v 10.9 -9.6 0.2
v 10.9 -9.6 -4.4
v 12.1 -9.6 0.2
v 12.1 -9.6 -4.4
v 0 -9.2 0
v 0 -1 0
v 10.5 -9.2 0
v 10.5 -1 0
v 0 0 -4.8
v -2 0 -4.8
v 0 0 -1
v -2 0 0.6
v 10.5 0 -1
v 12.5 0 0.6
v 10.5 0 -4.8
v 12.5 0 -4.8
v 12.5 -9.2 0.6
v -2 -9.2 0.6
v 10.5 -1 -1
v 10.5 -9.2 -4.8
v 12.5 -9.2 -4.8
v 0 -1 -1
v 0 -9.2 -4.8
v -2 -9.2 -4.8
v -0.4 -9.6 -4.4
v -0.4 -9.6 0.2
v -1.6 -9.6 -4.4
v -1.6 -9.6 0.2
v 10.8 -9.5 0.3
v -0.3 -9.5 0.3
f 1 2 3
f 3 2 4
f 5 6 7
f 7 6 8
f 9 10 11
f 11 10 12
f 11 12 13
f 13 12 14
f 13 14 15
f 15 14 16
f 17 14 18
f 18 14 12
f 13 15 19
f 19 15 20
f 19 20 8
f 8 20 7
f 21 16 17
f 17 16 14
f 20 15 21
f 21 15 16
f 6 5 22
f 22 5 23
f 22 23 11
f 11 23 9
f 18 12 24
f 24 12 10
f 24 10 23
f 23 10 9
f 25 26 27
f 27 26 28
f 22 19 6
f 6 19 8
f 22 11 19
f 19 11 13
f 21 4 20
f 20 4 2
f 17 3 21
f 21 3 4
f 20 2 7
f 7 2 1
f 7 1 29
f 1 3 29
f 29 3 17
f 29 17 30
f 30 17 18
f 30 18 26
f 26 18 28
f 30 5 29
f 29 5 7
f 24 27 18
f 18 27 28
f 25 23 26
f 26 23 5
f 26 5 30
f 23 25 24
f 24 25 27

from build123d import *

# Parameters (mm, degrees)
SKETCH_1_W      = 10.5
SKETCH_1_H      = 8.6
EXTRUDE_1_DEPTH = 0.6
SKETCH_2_W      = 2
SKETCH_2_H      = 8.6
EXTRUDE_2_DEPTH = 5.4
EXTRUDE_3_DEPTH = 1
SKETCH_4_W      = 10.5
SKETCH_4_H      = 1
EXTRUDE_4_DEPTH = 1
CHAMFER_1_SIZE  = 0.4


with BuildPart() as part:
    # Эскиз1 → Бобышка-Вытянуть1 (new body)
    with BuildSketch(Plane.XY):
        with Locations((5.25, -4.3)):
            Rectangle(SKETCH_1_W, SKETCH_1_H)
    extrude(amount=EXTRUDE_1_DEPTH)

    # Эскиз2 → Бобышка-Вытянуть2 (add)
    with BuildSketch(Plane.XY.offset(0.6)):
        with Locations((-1, -4.3)):
            Rectangle(SKETCH_2_W, SKETCH_2_H)
        with Locations((11.5, -4.3)):
            Rectangle(SKETCH_2_W, SKETCH_2_H)
    extrude(amount=-EXTRUDE_2_DEPTH)

    # Эскиз3 → Бобышка-Вытянуть3 (add)
    with BuildSketch(Plane.XZ.offset(8.6)):
        Polygon((10.5, 0), (10.5, -4.8), (12.5, -4.8), (12.5, 0.6), (-2, 0.6), (-2, -4.8), (0, -4.8), (0, 0), align=None)
    extrude(amount=EXTRUDE_3_DEPTH)

    # Эскиз4 → Бобышка-Вытянуть4 (add)
    with BuildSketch(Plane(origin=(0, 0, 0), x_dir=(-1, 0, 0), z_dir=(0, 0, -1))):
        with Locations((-5.25, -0.5)):
            Rectangle(SKETCH_4_W, SKETCH_4_H)
    extrude(amount=EXTRUDE_4_DEPTH)

    # Фаска1
    # the kernel refuses this chamfer: 0.4 mm, written as the material it takes off along each edge
    with BuildSketch(Plane(origin=(0, -9.6, -5.828673195), x_dir=(0.02749587661058617, 0.9996219169112966, 0), z_dir=(0, 0, 1)), Plane(origin=(10.5, -9.6, 0), x_dir=(-0.027495876610587302, 0.9996219169112966, 0), z_dir=(0, 0, -1))) as chamfer_1_piece_1:
        Polygon((CHAMFER_1_SIZE * 0.999621916911, CHAMFER_1_SIZE * 0.0274958766106), (-CHAMFER_1_SIZE * 0.0274958766106, CHAMFER_1_SIZE * 0.999621916911), (0, 0), align=None)
    extrude(amount=5.828673195, mode=Mode.SUBTRACT)
    with BuildSketch(Plane(origin=(0, -9.6, 0), x_dir=(0, 0.9996219169112968, -0.027495876610582035), z_dir=(1, 0, 0))) as chamfer_1_piece_2:
        Polygon((CHAMFER_1_SIZE * 0.999621916911, CHAMFER_1_SIZE * 0.0274958766106), (-CHAMFER_1_SIZE * 0.0274958766106, CHAMFER_1_SIZE * 0.999621916911), (0, 0), align=None)
    extrude(amount=10.5, mode=Mode.SUBTRACT)
    with BuildSketch(Plane(origin=(9.471326805, -9.6, -4.8), x_dir=(0, 0.9996219169112966, -0.027495876610587302), z_dir=(1, 0, 0)), Plane(origin=(-3.028673195, -9.6, -4.8), x_dir=(0, 0.9996219169112966, -0.027495876610587302), z_dir=(1, 0, 0))) as chamfer_1_piece_3:
        Polygon((CHAMFER_1_SIZE * 0.999621916911, CHAMFER_1_SIZE * 0.0274958766106), (-CHAMFER_1_SIZE * 0.0274958766106, CHAMFER_1_SIZE * 0.999621916911), (0, 0), align=None)
    extrude(amount=4.05734639, mode=Mode.SUBTRACT)
    with BuildSketch(Plane(origin=(12.5, -9.6, -5.828673195), x_dir=(0.027495876610587302, 0.9996219169112966, 0), z_dir=(0, 0, 1)), Plane(origin=(-2, -9.6, 1.628673195), x_dir=(-0.027495876610586223, 0.9996219169112966, 0), z_dir=(0, 0, -1))) as chamfer_1_piece_4:
        Polygon((CHAMFER_1_SIZE * 0.999621916911, CHAMFER_1_SIZE * 0.0274958766106), (-CHAMFER_1_SIZE * 0.0274958766106, CHAMFER_1_SIZE * 0.999621916911), (0, 0), align=None)
    extrude(amount=7.45734639, mode=Mode.SUBTRACT)
    with BuildSketch(Plane(origin=(13.528673195, -9.6, 0.6), x_dir=(0, 0.9996219169112968, 0.027495876610586226), z_dir=(-1, 0, 0))) as chamfer_1_piece_5:
        Polygon((CHAMFER_1_SIZE * 0.999621916911, CHAMFER_1_SIZE * 0.0274958766106), (-CHAMFER_1_SIZE * 0.0274958766106, CHAMFER_1_SIZE * 0.999621916911), (0, 0), align=None)
    extrude(amount=16.55734639, mode=Mode.SUBTRACT)
    with BuildSketch(Plane(origin=(0, -9.6, -5.828673195), x_dir=(0.02749587661058617, 0.9996219169112966, 0), z_dir=(0, 0, 1))) as chamfer_1_piece_6a_section:
        Polygon((CHAMFER_1_SIZE * 0.999621916911, CHAMFER_1_SIZE * 0.0274958766106), (-CHAMFER_1_SIZE * 0.0274958766106, CHAMFER_1_SIZE * 0.999621916911), (0, 0), align=None)
    chamfer_1_piece_6a = extrude(amount=6.85734639, mode=Mode.PRIVATE)
    chamfer_1_piece_6a = split(chamfer_1_piece_6a, bisect_by=Plane(origin=(-0.131917451, -9.468082549, 0), z_dir=(0, 0, 1)), keep=Keep.TOP, mode=Mode.PRIVATE)
    with BuildSketch(Plane(origin=(-1.028673195, -9.6, 0), x_dir=(0, 0.9996219169112968, -0.027495876610586317), z_dir=(1, 0, 0))) as chamfer_1_piece_6b_section:
        Polygon((CHAMFER_1_SIZE * 0.999621916911, CHAMFER_1_SIZE * 0.0274958766106), (-CHAMFER_1_SIZE * 0.0274958766106, CHAMFER_1_SIZE * 0.999621916911), (0, 0), align=None)
    chamfer_1_piece_6b = extrude(amount=11.528673195, mode=Mode.PRIVATE)
    chamfer_1_piece_6b = split(chamfer_1_piece_6b, bisect_by=Plane(origin=(0, -9.468082549, 0.131917451), z_dir=(-1, 0, 0)), keep=Keep.TOP, mode=Mode.PRIVATE)
    chamfer_1_piece_6 = chamfer_1_piece_6a & chamfer_1_piece_6b
    add(chamfer_1_piece_6, mode=Mode.SUBTRACT)
    with BuildSketch(Plane(origin=(10.5, -9.6, 1.028673195), x_dir=(-0.027495876610587302, 0.9996219169112966, 0), z_dir=(0, 0, -1))) as chamfer_1_piece_7a_section:
        Polygon((CHAMFER_1_SIZE * 0.999621916911, CHAMFER_1_SIZE * 0.0274958766106), (-CHAMFER_1_SIZE * 0.0274958766106, CHAMFER_1_SIZE * 0.999621916911), (0, 0), align=None)
    chamfer_1_piece_7a = extrude(amount=6.85734639, mode=Mode.PRIVATE)
    chamfer_1_piece_7a = split(chamfer_1_piece_7a, bisect_by=Plane(origin=(10.631917451, -9.468082549, 0), z_dir=(0, 0, 1)), keep=Keep.TOP, mode=Mode.PRIVATE)
    with BuildSketch(Plane(origin=(0, -9.6, 0), x_dir=(0, 0.9996219169112968, -0.027495876610582035), z_dir=(1, 0, 0))) as chamfer_1_piece_7b_section:
        Polygon((CHAMFER_1_SIZE * 0.999621916911, CHAMFER_1_SIZE * 0.0274958766106), (-CHAMFER_1_SIZE * 0.0274958766106, CHAMFER_1_SIZE * 0.999621916911), (0, 0), align=None)
    chamfer_1_piece_7b = extrude(amount=11.528673195, mode=Mode.PRIVATE)
    chamfer_1_piece_7b = split(chamfer_1_piece_7b, bisect_by=Plane(origin=(10.5, -9.468082549, 0.131917451), z_dir=(1, 0, 0)), keep=Keep.TOP, mode=Mode.PRIVATE)
    chamfer_1_piece_7 = chamfer_1_piece_7a & chamfer_1_piece_7b
    add(chamfer_1_piece_7, mode=Mode.SUBTRACT)


solid = part.part
